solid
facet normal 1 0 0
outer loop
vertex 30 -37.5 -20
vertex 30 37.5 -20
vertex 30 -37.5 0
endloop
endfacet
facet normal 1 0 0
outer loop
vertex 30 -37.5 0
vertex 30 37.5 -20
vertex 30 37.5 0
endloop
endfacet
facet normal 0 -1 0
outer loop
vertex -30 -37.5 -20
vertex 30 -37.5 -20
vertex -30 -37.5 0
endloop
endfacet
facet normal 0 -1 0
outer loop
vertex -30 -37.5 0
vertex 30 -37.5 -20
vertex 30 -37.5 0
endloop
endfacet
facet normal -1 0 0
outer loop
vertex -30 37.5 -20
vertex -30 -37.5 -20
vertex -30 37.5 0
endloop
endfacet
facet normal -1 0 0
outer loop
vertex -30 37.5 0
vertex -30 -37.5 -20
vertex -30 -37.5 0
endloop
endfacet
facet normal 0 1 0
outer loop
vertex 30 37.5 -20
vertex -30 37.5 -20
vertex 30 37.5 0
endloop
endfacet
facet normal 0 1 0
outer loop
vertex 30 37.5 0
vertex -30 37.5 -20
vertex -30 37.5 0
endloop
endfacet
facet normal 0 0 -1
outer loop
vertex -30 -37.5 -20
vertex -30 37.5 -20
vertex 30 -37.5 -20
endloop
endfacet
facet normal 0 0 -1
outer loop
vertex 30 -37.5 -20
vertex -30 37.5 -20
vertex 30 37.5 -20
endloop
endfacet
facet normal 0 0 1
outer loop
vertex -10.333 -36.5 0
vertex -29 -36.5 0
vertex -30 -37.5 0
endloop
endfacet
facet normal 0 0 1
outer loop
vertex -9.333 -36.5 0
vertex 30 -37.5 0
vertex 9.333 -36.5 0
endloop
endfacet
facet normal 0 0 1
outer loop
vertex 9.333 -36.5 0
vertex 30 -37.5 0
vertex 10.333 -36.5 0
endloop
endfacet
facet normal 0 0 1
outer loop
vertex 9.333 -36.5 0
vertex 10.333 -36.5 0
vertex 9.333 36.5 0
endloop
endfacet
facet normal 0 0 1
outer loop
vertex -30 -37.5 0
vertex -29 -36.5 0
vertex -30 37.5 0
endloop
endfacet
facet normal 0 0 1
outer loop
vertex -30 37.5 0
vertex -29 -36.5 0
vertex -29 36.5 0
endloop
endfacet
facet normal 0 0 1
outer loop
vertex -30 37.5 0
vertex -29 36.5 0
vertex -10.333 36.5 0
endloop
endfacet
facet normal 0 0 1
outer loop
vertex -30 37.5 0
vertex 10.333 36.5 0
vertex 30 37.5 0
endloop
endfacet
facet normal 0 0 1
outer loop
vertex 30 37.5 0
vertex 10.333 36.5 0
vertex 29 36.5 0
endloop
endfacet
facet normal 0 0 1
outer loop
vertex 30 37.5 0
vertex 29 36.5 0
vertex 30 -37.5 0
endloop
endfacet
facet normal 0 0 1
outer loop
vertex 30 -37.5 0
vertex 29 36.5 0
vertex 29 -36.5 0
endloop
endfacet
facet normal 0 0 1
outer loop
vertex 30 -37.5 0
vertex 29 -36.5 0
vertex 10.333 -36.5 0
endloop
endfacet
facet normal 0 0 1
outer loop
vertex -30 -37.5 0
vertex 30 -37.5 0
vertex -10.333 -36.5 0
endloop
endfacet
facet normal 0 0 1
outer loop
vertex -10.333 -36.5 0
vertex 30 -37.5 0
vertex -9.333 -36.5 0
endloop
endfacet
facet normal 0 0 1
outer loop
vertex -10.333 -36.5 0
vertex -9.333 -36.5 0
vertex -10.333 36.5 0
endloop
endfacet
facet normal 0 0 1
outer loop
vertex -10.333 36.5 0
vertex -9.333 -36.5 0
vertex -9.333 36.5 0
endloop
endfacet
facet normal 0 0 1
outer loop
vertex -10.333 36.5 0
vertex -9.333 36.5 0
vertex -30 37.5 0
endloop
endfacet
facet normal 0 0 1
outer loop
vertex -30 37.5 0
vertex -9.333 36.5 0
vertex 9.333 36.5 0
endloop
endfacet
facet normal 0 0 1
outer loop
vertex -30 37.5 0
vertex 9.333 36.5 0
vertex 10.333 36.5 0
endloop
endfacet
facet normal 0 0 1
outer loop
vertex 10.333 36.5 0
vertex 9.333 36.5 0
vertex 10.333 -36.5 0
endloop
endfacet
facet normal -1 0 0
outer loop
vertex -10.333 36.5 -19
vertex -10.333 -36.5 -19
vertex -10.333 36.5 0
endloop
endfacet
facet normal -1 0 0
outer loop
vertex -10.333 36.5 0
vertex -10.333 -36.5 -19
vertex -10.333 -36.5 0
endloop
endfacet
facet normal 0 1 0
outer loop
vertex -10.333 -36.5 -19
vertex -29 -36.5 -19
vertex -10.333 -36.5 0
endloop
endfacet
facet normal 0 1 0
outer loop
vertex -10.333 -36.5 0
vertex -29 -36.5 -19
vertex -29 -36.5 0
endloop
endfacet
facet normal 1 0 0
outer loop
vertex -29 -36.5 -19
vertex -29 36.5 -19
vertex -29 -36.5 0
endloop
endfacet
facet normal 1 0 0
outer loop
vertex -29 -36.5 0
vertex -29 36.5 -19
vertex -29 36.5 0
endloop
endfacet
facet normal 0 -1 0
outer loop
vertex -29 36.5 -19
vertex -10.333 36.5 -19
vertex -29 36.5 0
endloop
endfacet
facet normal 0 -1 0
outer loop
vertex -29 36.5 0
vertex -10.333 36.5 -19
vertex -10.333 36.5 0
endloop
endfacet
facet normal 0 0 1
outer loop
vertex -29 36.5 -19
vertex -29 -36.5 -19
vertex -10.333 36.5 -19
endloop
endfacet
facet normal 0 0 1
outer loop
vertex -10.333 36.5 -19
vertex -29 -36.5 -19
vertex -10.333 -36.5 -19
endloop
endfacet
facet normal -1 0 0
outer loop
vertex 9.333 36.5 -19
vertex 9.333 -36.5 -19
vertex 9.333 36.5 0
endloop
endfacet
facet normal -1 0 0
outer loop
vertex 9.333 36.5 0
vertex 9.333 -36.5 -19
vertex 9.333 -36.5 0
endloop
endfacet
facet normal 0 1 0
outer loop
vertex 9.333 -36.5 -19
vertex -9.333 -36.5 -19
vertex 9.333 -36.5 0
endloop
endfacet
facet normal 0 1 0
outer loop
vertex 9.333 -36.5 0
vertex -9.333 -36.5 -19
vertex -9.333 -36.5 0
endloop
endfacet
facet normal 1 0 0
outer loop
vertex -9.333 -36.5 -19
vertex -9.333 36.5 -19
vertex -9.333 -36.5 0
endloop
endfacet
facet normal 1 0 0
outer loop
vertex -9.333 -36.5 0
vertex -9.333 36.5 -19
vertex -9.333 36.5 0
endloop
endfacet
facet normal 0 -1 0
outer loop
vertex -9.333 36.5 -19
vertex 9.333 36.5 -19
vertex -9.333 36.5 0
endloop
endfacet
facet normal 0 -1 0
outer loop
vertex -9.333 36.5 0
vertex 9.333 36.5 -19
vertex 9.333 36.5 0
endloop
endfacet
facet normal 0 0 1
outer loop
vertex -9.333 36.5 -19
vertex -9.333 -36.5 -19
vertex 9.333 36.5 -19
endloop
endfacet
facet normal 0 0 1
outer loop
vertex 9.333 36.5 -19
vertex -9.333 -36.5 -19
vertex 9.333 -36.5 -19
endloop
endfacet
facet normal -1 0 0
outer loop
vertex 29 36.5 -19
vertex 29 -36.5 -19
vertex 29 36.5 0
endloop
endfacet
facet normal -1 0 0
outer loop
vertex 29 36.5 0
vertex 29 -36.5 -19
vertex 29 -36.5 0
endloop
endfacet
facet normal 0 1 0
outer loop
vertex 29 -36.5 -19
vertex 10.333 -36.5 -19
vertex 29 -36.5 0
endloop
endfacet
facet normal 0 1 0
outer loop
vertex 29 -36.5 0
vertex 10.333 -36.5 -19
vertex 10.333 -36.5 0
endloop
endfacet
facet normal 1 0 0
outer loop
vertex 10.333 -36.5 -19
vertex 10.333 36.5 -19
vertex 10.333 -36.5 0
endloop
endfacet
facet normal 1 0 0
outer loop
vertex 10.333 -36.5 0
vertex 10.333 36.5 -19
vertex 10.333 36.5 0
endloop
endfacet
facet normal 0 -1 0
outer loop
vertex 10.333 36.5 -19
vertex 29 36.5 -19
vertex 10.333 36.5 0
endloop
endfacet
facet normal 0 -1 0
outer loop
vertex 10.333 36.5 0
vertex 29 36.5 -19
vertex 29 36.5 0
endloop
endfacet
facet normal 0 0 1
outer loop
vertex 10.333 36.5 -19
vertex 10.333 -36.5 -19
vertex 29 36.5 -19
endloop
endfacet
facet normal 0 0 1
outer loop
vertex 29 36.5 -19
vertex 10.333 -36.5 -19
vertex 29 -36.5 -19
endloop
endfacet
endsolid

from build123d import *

# Parameters (mm, degrees)
SKETCH1_W           = 60
SKETCH1_H           = 75
BOSS_EXTRUDE1_DEPTH = 20
SKETCH2_W           = 18.666666667
SKETCH2_H           = 73
CUT_EXTRUDE1_DEPTH  = 19
SKETCH3_W           = 18.666666666
SKETCH3_H           = 73
CUT_EXTRUDE2_DEPTH  = 19
SKETCH4_W           = 18.666666667
SKETCH4_H           = 73
CUT_EXTRUDE3_DEPTH  = 19


with BuildPart() as part:
    # Sketch1 → Boss-Extrude1 (new body)
    with BuildSketch(Plane.XY):
        Rectangle(SKETCH1_W, SKETCH1_H)
    extrude(amount=-BOSS_EXTRUDE1_DEPTH)

    # Sketch2 → Cut-Extrude1 (cut)
    with BuildSketch(Plane.XY):
        with Locations((-19.666666667, 0)):
            Rectangle(SKETCH2_W, SKETCH2_H)
    extrude(amount=-CUT_EXTRUDE1_DEPTH, mode=Mode.SUBTRACT)

    # Sketch3 → Cut-Extrude2 (cut)
    with BuildSketch(Plane.XY):
        Rectangle(SKETCH3_W, SKETCH3_H)
    extrude(amount=-CUT_EXTRUDE2_DEPTH, mode=Mode.SUBTRACT)

    # Sketch4 → Cut-Extrude3 (cut)
    with BuildSketch(Plane.XY):
        with Locations((19.666666667, 0)):
            Rectangle(SKETCH4_W, SKETCH4_H)
    extrude(amount=-CUT_EXTRUDE3_DEPTH, mode=Mode.SUBTRACT)


solid = part.part
